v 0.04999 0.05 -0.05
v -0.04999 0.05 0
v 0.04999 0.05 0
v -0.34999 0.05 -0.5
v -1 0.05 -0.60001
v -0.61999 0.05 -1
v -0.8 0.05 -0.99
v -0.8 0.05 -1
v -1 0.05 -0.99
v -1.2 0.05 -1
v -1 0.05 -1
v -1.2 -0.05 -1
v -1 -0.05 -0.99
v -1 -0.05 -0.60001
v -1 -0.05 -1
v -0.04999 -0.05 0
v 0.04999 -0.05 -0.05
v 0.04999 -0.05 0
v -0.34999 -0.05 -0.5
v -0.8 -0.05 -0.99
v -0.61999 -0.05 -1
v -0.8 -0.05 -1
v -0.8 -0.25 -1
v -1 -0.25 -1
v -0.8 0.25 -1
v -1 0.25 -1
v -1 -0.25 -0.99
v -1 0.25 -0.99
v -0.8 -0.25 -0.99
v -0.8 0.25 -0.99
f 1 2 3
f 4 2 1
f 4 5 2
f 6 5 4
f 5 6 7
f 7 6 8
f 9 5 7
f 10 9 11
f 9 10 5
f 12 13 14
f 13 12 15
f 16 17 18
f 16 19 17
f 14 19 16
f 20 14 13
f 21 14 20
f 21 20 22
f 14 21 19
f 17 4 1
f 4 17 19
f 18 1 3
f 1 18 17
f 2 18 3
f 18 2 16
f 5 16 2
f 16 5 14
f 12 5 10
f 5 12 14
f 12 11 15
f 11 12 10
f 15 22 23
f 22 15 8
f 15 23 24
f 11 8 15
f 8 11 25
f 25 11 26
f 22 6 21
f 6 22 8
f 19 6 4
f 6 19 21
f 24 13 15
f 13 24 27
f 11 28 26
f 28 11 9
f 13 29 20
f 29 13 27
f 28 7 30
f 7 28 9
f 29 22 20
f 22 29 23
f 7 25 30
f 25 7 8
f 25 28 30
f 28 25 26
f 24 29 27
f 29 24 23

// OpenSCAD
//----------------------------------------------
// Custom Support 
// Size must be 1x1x1 
// Tested in Cura with Support Size : 30
// Recommanded Infill support > 12%
//----------------------------------------------
$fn=30;

translate([-0.5,-0.5,-1.0]) 
union() {
    translate([0.5,0.55,0.0]) rotate([90, 0, 0]) {
			linear_extrude(height=0.1) {
				polygon(points=[[-0.62,0],[-1.20,0],[-1,0.4],[-0.05,1],[0.05,1],[0.05,0.95],[-0.35,0.5]], convexity=1);
			}
		}
    translate([-0.4,0.5,0.005]) cube ( [0.2,0.5,0.01], center = true);
}
